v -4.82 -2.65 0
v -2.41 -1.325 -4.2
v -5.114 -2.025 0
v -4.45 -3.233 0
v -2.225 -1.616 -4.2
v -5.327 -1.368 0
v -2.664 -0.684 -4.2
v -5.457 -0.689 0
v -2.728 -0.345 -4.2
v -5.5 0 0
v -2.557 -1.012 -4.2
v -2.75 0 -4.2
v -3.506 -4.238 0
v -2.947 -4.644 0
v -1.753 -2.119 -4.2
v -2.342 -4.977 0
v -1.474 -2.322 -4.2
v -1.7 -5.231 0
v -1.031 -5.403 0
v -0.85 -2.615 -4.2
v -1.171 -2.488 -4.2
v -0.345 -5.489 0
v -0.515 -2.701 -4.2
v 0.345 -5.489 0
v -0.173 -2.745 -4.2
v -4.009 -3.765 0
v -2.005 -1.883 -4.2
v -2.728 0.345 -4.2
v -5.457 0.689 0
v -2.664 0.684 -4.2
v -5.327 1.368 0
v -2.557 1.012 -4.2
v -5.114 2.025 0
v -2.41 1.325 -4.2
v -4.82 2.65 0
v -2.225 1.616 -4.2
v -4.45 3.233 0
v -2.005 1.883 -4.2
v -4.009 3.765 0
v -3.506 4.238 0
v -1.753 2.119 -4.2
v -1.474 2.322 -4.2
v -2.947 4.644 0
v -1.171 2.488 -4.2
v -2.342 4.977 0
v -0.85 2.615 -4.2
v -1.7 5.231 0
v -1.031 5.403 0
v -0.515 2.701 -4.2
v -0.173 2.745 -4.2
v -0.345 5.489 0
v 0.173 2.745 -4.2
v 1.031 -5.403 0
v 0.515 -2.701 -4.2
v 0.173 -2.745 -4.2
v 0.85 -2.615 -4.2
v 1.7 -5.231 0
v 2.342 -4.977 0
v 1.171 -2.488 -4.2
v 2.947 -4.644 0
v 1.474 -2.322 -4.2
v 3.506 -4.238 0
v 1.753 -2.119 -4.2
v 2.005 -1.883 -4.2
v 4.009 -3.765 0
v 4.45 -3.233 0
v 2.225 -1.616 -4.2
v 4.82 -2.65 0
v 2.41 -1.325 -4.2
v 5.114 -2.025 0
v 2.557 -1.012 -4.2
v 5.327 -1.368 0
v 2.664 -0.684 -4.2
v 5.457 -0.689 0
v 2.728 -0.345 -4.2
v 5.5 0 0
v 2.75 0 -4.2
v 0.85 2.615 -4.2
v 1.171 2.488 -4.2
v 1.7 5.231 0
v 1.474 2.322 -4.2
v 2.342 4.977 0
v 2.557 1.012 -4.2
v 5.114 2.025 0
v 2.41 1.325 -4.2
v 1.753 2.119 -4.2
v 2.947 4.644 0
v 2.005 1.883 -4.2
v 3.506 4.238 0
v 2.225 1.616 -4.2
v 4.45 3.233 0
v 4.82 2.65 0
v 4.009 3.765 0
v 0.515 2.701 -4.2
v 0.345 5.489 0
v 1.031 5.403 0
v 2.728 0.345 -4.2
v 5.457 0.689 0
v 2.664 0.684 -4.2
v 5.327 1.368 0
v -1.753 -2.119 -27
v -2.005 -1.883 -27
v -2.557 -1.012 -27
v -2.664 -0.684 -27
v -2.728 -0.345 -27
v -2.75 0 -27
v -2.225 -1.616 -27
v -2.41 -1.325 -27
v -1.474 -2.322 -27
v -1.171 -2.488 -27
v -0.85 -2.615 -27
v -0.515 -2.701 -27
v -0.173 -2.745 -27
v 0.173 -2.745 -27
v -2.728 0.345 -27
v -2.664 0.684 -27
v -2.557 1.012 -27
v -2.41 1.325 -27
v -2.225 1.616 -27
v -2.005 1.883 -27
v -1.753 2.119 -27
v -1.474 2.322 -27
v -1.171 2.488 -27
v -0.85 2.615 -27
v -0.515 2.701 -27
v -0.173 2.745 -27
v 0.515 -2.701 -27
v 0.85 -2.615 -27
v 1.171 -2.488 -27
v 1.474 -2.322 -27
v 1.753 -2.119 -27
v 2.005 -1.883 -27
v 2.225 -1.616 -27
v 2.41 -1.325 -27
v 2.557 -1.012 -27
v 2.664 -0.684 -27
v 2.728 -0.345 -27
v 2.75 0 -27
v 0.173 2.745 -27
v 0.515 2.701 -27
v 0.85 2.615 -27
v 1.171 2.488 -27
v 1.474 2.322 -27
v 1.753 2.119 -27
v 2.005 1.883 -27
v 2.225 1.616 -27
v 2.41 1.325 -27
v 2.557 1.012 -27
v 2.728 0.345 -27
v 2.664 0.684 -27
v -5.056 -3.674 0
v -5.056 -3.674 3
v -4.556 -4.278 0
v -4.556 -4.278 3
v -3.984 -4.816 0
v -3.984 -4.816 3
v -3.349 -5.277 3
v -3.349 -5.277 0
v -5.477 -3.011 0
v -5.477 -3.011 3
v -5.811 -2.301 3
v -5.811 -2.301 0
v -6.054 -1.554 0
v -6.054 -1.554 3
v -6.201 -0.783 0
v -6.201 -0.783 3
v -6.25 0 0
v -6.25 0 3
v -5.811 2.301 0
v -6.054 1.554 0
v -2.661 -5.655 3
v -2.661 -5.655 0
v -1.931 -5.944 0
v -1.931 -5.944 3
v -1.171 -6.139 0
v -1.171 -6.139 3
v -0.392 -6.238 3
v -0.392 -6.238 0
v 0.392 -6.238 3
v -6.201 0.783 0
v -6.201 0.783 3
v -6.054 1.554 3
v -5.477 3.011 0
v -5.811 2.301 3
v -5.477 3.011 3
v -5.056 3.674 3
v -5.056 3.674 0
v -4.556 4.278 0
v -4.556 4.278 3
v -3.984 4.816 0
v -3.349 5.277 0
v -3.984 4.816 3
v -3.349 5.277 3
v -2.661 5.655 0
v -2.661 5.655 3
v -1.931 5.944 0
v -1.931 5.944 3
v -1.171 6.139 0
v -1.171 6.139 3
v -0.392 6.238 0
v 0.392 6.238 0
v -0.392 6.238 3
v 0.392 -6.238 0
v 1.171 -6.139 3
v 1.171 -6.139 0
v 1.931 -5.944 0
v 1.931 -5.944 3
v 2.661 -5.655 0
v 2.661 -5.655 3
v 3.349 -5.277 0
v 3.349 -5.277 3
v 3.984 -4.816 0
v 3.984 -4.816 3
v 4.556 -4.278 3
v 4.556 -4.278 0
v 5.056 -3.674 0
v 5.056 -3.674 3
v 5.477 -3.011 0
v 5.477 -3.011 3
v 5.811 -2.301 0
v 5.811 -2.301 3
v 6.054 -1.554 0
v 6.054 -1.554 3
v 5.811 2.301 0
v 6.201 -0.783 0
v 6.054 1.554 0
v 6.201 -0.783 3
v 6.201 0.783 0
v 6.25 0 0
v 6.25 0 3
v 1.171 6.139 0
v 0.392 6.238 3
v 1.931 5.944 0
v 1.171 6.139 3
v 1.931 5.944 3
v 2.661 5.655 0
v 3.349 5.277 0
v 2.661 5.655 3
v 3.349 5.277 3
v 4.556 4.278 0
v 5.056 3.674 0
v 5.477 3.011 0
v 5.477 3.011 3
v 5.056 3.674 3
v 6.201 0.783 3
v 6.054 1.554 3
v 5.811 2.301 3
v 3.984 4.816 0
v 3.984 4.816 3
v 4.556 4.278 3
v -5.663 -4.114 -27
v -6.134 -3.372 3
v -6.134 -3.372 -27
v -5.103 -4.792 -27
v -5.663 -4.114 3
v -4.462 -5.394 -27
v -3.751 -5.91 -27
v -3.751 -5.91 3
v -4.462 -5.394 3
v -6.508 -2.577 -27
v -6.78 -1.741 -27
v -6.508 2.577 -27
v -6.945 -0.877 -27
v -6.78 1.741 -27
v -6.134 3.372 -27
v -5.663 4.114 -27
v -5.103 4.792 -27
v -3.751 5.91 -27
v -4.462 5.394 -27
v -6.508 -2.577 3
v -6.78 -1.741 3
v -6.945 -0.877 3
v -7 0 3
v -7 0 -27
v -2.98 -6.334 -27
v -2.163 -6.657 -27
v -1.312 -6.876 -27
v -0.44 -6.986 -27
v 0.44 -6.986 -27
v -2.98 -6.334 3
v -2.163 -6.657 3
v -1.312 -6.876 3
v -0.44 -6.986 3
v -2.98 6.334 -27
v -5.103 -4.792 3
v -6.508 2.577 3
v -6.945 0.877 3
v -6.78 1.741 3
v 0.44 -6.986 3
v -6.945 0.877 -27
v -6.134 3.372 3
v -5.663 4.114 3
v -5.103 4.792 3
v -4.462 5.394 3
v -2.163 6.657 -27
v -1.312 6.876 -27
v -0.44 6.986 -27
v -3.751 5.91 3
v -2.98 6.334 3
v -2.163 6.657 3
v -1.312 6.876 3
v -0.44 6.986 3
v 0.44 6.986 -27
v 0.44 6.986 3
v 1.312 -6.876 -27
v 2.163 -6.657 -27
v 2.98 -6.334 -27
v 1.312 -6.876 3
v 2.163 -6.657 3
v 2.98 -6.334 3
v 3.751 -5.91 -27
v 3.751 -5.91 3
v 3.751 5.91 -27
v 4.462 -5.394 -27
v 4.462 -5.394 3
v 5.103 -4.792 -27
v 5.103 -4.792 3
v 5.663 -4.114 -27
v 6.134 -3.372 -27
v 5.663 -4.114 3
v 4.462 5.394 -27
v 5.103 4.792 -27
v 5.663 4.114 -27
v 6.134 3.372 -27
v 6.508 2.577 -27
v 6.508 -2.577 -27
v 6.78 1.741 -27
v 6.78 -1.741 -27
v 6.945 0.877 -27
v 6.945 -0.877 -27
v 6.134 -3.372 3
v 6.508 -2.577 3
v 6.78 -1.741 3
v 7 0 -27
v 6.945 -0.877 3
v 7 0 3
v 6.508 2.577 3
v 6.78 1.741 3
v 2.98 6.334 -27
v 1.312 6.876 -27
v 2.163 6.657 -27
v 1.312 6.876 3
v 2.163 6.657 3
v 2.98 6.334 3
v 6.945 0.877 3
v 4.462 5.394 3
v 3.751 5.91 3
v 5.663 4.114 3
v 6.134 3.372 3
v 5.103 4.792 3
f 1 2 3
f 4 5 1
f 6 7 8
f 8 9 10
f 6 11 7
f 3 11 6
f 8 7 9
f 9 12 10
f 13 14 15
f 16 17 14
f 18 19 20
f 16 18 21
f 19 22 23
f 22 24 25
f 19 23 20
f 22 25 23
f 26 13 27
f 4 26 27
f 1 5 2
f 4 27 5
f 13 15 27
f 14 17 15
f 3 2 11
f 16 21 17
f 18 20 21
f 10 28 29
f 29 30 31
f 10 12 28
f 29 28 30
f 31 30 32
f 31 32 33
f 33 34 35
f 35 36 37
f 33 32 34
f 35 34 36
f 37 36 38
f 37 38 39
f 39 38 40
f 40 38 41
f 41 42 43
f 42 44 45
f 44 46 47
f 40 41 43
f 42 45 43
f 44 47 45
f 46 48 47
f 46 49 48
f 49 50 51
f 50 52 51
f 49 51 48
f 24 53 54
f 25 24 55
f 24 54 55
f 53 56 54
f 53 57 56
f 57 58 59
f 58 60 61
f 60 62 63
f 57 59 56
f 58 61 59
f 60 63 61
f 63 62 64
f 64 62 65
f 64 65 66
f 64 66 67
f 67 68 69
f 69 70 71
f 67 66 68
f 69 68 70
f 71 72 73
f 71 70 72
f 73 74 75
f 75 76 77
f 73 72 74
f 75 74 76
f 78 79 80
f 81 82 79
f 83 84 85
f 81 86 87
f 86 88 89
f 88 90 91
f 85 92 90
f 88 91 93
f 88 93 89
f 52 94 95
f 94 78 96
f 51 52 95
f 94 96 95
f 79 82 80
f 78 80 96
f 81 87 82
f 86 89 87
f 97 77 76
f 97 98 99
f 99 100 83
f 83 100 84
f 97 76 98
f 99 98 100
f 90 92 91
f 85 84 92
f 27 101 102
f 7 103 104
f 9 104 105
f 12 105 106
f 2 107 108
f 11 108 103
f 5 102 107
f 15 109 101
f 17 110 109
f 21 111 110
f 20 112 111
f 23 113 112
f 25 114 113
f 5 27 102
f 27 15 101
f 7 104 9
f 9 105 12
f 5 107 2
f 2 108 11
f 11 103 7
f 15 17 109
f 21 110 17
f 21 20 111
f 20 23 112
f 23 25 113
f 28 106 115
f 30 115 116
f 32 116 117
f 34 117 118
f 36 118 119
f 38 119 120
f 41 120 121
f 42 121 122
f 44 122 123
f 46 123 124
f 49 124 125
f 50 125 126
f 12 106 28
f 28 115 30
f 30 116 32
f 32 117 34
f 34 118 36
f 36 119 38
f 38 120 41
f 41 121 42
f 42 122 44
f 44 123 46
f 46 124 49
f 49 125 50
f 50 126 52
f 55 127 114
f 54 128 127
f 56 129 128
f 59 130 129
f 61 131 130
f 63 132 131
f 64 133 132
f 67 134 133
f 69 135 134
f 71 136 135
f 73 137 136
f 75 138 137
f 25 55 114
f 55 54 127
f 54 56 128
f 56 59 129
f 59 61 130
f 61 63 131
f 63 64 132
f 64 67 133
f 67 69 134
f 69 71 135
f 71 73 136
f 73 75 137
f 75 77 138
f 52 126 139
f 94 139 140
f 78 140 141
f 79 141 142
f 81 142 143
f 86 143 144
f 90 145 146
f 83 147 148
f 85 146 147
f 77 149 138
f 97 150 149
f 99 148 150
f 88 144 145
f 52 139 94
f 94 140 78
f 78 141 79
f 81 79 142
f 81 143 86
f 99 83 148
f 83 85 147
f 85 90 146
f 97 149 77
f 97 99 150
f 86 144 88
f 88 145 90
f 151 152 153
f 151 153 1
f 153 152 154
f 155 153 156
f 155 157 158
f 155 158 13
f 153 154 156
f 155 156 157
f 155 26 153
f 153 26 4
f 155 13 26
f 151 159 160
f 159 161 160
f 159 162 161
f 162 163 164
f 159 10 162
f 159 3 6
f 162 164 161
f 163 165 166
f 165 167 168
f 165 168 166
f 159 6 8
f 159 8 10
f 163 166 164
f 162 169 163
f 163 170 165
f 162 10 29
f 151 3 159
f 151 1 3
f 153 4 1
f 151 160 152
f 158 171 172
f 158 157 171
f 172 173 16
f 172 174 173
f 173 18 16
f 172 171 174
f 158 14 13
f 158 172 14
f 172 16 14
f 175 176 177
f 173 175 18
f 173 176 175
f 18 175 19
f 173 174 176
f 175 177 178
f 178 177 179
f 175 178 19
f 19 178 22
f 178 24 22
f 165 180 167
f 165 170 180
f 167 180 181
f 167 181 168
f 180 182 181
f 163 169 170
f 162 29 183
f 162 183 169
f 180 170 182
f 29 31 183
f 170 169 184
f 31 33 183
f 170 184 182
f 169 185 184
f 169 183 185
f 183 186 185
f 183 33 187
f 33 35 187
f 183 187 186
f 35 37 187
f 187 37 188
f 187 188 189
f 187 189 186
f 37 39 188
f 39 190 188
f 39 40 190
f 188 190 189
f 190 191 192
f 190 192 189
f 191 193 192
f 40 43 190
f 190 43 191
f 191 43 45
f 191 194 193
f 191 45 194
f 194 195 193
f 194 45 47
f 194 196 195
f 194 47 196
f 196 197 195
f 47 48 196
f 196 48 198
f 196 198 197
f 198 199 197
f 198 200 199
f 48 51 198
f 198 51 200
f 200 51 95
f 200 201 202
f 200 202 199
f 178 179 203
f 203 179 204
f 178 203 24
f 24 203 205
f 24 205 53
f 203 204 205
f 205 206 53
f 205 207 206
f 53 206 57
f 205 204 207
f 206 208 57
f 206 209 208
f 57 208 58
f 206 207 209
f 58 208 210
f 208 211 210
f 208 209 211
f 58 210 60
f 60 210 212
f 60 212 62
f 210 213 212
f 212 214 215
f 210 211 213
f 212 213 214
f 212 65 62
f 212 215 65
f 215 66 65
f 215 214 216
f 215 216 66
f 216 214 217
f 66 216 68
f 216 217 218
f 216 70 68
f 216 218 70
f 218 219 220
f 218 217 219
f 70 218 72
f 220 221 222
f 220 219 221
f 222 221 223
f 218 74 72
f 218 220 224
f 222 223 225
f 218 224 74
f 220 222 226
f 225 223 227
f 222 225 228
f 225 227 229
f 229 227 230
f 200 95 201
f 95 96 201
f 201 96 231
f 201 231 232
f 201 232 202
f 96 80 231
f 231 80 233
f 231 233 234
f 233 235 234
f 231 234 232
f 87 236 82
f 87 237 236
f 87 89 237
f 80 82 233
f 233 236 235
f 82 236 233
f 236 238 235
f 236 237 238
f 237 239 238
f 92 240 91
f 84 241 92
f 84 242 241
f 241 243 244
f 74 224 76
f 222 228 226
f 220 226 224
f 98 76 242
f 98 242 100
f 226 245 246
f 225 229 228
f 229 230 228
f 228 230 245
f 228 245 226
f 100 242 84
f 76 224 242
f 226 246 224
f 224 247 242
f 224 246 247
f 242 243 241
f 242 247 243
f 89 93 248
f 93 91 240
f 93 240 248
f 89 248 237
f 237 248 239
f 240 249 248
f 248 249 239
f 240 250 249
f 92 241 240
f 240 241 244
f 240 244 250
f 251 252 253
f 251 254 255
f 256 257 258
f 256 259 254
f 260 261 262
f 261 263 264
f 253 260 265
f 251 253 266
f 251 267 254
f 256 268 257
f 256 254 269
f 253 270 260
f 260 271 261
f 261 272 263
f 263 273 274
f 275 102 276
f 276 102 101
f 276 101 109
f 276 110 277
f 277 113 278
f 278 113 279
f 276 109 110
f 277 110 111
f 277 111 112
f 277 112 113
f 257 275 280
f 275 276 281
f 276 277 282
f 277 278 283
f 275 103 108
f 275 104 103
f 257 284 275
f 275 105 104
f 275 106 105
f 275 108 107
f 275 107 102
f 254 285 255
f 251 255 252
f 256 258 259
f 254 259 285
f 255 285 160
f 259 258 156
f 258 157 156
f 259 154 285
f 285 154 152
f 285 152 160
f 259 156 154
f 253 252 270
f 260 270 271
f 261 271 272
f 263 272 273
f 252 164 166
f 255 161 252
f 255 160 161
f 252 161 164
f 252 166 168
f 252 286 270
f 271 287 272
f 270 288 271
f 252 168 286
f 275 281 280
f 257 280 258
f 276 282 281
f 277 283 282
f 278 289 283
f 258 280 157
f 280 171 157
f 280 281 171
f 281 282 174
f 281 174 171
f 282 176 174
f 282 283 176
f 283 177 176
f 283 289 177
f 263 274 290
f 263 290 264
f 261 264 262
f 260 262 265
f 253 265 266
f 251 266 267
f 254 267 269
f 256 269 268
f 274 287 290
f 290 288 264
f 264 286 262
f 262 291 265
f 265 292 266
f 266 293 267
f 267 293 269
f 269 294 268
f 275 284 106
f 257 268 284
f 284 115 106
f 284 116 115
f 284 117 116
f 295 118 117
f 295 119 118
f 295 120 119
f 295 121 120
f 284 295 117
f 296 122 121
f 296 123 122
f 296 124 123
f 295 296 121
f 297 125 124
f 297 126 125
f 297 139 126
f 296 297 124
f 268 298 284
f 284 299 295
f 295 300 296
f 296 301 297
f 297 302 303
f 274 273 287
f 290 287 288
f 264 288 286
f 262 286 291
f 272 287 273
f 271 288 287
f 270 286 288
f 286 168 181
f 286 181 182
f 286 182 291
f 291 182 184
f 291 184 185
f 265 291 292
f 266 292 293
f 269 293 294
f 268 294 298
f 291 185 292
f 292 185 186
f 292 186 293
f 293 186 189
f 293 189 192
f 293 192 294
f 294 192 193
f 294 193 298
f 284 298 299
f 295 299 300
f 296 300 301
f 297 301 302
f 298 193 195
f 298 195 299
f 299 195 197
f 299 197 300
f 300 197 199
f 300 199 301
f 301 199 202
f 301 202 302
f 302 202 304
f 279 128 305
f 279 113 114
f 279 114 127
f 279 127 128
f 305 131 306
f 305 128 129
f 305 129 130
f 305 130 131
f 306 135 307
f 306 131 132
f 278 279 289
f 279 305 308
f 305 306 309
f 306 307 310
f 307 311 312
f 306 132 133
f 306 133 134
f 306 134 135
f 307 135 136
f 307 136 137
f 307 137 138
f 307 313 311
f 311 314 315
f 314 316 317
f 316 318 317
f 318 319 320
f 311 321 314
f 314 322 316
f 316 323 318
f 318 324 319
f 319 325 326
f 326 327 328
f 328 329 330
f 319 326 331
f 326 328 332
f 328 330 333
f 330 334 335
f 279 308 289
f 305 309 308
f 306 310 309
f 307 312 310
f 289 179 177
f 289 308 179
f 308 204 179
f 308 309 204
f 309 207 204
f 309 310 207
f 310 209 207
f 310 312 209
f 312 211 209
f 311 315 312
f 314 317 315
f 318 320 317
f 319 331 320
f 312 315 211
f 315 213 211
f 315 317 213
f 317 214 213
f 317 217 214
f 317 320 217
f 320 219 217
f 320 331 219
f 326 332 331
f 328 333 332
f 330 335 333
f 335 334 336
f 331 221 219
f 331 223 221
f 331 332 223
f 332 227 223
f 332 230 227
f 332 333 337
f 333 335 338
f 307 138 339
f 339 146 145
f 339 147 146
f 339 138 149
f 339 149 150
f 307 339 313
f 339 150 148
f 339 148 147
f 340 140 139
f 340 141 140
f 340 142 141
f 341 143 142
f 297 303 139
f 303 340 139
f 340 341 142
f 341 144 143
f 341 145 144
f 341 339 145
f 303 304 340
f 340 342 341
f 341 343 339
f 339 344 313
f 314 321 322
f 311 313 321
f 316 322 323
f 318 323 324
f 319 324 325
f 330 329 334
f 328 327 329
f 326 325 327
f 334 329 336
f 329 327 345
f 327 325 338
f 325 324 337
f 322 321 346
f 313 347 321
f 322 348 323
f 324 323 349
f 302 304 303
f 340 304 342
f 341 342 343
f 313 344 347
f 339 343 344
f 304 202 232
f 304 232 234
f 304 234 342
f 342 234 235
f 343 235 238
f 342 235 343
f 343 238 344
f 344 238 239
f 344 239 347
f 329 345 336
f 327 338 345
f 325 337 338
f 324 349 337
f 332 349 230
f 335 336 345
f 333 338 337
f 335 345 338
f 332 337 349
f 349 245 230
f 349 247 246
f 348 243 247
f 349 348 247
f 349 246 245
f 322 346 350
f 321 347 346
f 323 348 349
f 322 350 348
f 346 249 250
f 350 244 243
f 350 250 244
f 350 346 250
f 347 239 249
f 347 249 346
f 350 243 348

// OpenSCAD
$fn = 50;


difference() {
	union() {
		translate(v = [0, 0, -27.0000000000]) {
			cylinder(h = 30, r = 7.0000000000);
		}
	}
	union() {
		translate(v = [0, 0, 0]) {
			rotate(a = [0, 0, 0]) {
				difference() {
					union() {
						translate(v = [0, 0, -30.0000000000]) {
							cylinder(h = 30, r = 2.2500000000);
						}
						translate(v = [0, 0, -4.2000000000]) {
							cylinder(h = 4.2000000000, r1 = 2.7500000000, r2 = 5.5000000000);
						}
						translate(v = [0, 0, -30.0000000000]) {
							cylinder(h = 30, r = 2.7500000000);
						}
						translate(v = [0, 0, -30.0000000000]) {
							cylinder(h = 30, r = 2.2500000000);
						}
					}
					union();
				}
			}
		}
		#cylinder(h = 3, r = 6.2500000000);
	}
}
